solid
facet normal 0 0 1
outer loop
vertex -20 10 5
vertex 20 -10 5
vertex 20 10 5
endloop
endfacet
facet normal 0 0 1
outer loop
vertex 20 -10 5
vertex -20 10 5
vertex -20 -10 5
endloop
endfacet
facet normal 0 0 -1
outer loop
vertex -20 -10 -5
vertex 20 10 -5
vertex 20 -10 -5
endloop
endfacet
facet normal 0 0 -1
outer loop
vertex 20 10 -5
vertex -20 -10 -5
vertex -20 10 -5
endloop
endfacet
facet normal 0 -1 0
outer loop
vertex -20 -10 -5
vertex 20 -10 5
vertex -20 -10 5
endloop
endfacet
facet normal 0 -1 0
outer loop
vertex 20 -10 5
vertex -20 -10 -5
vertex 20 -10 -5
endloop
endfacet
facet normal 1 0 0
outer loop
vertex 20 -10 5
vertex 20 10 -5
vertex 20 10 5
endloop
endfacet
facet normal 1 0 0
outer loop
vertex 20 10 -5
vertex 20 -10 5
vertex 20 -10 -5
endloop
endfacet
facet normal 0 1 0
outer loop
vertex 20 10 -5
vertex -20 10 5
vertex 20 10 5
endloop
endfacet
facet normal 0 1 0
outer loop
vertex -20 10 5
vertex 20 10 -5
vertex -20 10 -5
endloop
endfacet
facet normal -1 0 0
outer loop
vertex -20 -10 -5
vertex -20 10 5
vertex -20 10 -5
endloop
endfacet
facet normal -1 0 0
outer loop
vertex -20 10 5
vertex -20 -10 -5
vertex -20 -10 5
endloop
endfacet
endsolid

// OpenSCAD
// CubeTest — OpenSCAD 参数化模型（TrieCode 脚手架）
// 顶层常量 = 可调参数；改完用 plugin_openscad-toolchain_preview 看图，定稿用 render 导出 STL/3MF。
length = 40;   // 长度 (mm)
width  = 20;   // 宽度 (mm)
height = 10;   // 高度 (mm)
wall   = 2;    // 壁厚 (mm)

module box_body() {
  // 倒角/螺纹等高级原语可用内置 BOSL2：include <BOSL2/std.scad> 后 cuboid(size, chamfer=) 等
  cube([length, width, height], center = true);
}

// echo() 输出测量值（预览/渲染输出里可见，AI 自检用）
echo(str("dimensions: ", length, "x", width, "x", height, " mm"));

box_body();
